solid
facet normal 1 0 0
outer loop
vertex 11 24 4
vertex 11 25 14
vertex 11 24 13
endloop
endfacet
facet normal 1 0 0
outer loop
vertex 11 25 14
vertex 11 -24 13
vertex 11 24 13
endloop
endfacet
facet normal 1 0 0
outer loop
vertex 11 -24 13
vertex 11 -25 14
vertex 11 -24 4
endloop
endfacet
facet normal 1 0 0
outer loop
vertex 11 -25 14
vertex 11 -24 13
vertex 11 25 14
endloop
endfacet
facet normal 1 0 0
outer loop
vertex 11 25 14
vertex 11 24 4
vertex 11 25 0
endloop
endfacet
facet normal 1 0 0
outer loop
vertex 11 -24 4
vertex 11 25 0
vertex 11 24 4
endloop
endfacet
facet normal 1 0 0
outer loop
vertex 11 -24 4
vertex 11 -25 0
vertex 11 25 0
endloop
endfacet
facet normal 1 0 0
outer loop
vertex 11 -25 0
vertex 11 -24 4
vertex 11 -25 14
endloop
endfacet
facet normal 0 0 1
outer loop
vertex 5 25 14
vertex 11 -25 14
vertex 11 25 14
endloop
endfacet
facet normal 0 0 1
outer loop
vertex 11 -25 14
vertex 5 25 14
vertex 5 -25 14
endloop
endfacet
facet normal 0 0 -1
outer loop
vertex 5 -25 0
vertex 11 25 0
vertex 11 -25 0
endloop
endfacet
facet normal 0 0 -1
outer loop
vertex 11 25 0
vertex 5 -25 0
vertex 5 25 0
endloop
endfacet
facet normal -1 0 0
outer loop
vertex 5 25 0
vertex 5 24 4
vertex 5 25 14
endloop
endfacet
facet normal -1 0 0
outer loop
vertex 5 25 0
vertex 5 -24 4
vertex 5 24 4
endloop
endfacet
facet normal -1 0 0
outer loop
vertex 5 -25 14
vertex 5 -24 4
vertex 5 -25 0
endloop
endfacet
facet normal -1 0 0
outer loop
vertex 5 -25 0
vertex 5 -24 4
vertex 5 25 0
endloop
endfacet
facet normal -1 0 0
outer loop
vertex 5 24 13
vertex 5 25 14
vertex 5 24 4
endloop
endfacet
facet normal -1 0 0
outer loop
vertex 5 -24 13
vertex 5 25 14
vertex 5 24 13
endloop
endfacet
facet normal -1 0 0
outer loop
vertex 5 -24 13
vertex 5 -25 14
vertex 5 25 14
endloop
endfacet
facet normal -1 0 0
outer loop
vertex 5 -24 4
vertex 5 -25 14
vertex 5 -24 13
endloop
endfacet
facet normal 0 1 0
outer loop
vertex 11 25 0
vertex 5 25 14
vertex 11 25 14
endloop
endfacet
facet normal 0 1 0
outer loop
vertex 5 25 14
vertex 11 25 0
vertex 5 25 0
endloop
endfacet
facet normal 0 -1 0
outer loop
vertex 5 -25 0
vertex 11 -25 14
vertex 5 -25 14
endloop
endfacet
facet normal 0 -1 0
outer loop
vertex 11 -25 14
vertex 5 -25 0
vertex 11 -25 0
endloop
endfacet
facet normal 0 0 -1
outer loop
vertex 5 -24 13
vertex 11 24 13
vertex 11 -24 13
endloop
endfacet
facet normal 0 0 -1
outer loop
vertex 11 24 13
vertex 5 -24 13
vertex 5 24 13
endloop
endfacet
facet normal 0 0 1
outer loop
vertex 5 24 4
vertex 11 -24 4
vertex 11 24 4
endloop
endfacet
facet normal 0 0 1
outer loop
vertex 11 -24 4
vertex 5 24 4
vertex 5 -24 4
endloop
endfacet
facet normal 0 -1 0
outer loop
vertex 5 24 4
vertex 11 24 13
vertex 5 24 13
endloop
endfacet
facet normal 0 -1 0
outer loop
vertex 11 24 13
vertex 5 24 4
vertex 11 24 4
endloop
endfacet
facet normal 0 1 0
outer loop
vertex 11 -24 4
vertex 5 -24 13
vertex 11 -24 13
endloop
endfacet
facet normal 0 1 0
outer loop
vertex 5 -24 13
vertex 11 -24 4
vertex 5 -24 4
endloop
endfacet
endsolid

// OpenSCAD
translate ([5, -25, 0]) {
    difference () {
        cube([6, 50, 14]);
        translate([-1, 1, 4]) {
            cube([8, 48, 9]);
        }
    }
}
